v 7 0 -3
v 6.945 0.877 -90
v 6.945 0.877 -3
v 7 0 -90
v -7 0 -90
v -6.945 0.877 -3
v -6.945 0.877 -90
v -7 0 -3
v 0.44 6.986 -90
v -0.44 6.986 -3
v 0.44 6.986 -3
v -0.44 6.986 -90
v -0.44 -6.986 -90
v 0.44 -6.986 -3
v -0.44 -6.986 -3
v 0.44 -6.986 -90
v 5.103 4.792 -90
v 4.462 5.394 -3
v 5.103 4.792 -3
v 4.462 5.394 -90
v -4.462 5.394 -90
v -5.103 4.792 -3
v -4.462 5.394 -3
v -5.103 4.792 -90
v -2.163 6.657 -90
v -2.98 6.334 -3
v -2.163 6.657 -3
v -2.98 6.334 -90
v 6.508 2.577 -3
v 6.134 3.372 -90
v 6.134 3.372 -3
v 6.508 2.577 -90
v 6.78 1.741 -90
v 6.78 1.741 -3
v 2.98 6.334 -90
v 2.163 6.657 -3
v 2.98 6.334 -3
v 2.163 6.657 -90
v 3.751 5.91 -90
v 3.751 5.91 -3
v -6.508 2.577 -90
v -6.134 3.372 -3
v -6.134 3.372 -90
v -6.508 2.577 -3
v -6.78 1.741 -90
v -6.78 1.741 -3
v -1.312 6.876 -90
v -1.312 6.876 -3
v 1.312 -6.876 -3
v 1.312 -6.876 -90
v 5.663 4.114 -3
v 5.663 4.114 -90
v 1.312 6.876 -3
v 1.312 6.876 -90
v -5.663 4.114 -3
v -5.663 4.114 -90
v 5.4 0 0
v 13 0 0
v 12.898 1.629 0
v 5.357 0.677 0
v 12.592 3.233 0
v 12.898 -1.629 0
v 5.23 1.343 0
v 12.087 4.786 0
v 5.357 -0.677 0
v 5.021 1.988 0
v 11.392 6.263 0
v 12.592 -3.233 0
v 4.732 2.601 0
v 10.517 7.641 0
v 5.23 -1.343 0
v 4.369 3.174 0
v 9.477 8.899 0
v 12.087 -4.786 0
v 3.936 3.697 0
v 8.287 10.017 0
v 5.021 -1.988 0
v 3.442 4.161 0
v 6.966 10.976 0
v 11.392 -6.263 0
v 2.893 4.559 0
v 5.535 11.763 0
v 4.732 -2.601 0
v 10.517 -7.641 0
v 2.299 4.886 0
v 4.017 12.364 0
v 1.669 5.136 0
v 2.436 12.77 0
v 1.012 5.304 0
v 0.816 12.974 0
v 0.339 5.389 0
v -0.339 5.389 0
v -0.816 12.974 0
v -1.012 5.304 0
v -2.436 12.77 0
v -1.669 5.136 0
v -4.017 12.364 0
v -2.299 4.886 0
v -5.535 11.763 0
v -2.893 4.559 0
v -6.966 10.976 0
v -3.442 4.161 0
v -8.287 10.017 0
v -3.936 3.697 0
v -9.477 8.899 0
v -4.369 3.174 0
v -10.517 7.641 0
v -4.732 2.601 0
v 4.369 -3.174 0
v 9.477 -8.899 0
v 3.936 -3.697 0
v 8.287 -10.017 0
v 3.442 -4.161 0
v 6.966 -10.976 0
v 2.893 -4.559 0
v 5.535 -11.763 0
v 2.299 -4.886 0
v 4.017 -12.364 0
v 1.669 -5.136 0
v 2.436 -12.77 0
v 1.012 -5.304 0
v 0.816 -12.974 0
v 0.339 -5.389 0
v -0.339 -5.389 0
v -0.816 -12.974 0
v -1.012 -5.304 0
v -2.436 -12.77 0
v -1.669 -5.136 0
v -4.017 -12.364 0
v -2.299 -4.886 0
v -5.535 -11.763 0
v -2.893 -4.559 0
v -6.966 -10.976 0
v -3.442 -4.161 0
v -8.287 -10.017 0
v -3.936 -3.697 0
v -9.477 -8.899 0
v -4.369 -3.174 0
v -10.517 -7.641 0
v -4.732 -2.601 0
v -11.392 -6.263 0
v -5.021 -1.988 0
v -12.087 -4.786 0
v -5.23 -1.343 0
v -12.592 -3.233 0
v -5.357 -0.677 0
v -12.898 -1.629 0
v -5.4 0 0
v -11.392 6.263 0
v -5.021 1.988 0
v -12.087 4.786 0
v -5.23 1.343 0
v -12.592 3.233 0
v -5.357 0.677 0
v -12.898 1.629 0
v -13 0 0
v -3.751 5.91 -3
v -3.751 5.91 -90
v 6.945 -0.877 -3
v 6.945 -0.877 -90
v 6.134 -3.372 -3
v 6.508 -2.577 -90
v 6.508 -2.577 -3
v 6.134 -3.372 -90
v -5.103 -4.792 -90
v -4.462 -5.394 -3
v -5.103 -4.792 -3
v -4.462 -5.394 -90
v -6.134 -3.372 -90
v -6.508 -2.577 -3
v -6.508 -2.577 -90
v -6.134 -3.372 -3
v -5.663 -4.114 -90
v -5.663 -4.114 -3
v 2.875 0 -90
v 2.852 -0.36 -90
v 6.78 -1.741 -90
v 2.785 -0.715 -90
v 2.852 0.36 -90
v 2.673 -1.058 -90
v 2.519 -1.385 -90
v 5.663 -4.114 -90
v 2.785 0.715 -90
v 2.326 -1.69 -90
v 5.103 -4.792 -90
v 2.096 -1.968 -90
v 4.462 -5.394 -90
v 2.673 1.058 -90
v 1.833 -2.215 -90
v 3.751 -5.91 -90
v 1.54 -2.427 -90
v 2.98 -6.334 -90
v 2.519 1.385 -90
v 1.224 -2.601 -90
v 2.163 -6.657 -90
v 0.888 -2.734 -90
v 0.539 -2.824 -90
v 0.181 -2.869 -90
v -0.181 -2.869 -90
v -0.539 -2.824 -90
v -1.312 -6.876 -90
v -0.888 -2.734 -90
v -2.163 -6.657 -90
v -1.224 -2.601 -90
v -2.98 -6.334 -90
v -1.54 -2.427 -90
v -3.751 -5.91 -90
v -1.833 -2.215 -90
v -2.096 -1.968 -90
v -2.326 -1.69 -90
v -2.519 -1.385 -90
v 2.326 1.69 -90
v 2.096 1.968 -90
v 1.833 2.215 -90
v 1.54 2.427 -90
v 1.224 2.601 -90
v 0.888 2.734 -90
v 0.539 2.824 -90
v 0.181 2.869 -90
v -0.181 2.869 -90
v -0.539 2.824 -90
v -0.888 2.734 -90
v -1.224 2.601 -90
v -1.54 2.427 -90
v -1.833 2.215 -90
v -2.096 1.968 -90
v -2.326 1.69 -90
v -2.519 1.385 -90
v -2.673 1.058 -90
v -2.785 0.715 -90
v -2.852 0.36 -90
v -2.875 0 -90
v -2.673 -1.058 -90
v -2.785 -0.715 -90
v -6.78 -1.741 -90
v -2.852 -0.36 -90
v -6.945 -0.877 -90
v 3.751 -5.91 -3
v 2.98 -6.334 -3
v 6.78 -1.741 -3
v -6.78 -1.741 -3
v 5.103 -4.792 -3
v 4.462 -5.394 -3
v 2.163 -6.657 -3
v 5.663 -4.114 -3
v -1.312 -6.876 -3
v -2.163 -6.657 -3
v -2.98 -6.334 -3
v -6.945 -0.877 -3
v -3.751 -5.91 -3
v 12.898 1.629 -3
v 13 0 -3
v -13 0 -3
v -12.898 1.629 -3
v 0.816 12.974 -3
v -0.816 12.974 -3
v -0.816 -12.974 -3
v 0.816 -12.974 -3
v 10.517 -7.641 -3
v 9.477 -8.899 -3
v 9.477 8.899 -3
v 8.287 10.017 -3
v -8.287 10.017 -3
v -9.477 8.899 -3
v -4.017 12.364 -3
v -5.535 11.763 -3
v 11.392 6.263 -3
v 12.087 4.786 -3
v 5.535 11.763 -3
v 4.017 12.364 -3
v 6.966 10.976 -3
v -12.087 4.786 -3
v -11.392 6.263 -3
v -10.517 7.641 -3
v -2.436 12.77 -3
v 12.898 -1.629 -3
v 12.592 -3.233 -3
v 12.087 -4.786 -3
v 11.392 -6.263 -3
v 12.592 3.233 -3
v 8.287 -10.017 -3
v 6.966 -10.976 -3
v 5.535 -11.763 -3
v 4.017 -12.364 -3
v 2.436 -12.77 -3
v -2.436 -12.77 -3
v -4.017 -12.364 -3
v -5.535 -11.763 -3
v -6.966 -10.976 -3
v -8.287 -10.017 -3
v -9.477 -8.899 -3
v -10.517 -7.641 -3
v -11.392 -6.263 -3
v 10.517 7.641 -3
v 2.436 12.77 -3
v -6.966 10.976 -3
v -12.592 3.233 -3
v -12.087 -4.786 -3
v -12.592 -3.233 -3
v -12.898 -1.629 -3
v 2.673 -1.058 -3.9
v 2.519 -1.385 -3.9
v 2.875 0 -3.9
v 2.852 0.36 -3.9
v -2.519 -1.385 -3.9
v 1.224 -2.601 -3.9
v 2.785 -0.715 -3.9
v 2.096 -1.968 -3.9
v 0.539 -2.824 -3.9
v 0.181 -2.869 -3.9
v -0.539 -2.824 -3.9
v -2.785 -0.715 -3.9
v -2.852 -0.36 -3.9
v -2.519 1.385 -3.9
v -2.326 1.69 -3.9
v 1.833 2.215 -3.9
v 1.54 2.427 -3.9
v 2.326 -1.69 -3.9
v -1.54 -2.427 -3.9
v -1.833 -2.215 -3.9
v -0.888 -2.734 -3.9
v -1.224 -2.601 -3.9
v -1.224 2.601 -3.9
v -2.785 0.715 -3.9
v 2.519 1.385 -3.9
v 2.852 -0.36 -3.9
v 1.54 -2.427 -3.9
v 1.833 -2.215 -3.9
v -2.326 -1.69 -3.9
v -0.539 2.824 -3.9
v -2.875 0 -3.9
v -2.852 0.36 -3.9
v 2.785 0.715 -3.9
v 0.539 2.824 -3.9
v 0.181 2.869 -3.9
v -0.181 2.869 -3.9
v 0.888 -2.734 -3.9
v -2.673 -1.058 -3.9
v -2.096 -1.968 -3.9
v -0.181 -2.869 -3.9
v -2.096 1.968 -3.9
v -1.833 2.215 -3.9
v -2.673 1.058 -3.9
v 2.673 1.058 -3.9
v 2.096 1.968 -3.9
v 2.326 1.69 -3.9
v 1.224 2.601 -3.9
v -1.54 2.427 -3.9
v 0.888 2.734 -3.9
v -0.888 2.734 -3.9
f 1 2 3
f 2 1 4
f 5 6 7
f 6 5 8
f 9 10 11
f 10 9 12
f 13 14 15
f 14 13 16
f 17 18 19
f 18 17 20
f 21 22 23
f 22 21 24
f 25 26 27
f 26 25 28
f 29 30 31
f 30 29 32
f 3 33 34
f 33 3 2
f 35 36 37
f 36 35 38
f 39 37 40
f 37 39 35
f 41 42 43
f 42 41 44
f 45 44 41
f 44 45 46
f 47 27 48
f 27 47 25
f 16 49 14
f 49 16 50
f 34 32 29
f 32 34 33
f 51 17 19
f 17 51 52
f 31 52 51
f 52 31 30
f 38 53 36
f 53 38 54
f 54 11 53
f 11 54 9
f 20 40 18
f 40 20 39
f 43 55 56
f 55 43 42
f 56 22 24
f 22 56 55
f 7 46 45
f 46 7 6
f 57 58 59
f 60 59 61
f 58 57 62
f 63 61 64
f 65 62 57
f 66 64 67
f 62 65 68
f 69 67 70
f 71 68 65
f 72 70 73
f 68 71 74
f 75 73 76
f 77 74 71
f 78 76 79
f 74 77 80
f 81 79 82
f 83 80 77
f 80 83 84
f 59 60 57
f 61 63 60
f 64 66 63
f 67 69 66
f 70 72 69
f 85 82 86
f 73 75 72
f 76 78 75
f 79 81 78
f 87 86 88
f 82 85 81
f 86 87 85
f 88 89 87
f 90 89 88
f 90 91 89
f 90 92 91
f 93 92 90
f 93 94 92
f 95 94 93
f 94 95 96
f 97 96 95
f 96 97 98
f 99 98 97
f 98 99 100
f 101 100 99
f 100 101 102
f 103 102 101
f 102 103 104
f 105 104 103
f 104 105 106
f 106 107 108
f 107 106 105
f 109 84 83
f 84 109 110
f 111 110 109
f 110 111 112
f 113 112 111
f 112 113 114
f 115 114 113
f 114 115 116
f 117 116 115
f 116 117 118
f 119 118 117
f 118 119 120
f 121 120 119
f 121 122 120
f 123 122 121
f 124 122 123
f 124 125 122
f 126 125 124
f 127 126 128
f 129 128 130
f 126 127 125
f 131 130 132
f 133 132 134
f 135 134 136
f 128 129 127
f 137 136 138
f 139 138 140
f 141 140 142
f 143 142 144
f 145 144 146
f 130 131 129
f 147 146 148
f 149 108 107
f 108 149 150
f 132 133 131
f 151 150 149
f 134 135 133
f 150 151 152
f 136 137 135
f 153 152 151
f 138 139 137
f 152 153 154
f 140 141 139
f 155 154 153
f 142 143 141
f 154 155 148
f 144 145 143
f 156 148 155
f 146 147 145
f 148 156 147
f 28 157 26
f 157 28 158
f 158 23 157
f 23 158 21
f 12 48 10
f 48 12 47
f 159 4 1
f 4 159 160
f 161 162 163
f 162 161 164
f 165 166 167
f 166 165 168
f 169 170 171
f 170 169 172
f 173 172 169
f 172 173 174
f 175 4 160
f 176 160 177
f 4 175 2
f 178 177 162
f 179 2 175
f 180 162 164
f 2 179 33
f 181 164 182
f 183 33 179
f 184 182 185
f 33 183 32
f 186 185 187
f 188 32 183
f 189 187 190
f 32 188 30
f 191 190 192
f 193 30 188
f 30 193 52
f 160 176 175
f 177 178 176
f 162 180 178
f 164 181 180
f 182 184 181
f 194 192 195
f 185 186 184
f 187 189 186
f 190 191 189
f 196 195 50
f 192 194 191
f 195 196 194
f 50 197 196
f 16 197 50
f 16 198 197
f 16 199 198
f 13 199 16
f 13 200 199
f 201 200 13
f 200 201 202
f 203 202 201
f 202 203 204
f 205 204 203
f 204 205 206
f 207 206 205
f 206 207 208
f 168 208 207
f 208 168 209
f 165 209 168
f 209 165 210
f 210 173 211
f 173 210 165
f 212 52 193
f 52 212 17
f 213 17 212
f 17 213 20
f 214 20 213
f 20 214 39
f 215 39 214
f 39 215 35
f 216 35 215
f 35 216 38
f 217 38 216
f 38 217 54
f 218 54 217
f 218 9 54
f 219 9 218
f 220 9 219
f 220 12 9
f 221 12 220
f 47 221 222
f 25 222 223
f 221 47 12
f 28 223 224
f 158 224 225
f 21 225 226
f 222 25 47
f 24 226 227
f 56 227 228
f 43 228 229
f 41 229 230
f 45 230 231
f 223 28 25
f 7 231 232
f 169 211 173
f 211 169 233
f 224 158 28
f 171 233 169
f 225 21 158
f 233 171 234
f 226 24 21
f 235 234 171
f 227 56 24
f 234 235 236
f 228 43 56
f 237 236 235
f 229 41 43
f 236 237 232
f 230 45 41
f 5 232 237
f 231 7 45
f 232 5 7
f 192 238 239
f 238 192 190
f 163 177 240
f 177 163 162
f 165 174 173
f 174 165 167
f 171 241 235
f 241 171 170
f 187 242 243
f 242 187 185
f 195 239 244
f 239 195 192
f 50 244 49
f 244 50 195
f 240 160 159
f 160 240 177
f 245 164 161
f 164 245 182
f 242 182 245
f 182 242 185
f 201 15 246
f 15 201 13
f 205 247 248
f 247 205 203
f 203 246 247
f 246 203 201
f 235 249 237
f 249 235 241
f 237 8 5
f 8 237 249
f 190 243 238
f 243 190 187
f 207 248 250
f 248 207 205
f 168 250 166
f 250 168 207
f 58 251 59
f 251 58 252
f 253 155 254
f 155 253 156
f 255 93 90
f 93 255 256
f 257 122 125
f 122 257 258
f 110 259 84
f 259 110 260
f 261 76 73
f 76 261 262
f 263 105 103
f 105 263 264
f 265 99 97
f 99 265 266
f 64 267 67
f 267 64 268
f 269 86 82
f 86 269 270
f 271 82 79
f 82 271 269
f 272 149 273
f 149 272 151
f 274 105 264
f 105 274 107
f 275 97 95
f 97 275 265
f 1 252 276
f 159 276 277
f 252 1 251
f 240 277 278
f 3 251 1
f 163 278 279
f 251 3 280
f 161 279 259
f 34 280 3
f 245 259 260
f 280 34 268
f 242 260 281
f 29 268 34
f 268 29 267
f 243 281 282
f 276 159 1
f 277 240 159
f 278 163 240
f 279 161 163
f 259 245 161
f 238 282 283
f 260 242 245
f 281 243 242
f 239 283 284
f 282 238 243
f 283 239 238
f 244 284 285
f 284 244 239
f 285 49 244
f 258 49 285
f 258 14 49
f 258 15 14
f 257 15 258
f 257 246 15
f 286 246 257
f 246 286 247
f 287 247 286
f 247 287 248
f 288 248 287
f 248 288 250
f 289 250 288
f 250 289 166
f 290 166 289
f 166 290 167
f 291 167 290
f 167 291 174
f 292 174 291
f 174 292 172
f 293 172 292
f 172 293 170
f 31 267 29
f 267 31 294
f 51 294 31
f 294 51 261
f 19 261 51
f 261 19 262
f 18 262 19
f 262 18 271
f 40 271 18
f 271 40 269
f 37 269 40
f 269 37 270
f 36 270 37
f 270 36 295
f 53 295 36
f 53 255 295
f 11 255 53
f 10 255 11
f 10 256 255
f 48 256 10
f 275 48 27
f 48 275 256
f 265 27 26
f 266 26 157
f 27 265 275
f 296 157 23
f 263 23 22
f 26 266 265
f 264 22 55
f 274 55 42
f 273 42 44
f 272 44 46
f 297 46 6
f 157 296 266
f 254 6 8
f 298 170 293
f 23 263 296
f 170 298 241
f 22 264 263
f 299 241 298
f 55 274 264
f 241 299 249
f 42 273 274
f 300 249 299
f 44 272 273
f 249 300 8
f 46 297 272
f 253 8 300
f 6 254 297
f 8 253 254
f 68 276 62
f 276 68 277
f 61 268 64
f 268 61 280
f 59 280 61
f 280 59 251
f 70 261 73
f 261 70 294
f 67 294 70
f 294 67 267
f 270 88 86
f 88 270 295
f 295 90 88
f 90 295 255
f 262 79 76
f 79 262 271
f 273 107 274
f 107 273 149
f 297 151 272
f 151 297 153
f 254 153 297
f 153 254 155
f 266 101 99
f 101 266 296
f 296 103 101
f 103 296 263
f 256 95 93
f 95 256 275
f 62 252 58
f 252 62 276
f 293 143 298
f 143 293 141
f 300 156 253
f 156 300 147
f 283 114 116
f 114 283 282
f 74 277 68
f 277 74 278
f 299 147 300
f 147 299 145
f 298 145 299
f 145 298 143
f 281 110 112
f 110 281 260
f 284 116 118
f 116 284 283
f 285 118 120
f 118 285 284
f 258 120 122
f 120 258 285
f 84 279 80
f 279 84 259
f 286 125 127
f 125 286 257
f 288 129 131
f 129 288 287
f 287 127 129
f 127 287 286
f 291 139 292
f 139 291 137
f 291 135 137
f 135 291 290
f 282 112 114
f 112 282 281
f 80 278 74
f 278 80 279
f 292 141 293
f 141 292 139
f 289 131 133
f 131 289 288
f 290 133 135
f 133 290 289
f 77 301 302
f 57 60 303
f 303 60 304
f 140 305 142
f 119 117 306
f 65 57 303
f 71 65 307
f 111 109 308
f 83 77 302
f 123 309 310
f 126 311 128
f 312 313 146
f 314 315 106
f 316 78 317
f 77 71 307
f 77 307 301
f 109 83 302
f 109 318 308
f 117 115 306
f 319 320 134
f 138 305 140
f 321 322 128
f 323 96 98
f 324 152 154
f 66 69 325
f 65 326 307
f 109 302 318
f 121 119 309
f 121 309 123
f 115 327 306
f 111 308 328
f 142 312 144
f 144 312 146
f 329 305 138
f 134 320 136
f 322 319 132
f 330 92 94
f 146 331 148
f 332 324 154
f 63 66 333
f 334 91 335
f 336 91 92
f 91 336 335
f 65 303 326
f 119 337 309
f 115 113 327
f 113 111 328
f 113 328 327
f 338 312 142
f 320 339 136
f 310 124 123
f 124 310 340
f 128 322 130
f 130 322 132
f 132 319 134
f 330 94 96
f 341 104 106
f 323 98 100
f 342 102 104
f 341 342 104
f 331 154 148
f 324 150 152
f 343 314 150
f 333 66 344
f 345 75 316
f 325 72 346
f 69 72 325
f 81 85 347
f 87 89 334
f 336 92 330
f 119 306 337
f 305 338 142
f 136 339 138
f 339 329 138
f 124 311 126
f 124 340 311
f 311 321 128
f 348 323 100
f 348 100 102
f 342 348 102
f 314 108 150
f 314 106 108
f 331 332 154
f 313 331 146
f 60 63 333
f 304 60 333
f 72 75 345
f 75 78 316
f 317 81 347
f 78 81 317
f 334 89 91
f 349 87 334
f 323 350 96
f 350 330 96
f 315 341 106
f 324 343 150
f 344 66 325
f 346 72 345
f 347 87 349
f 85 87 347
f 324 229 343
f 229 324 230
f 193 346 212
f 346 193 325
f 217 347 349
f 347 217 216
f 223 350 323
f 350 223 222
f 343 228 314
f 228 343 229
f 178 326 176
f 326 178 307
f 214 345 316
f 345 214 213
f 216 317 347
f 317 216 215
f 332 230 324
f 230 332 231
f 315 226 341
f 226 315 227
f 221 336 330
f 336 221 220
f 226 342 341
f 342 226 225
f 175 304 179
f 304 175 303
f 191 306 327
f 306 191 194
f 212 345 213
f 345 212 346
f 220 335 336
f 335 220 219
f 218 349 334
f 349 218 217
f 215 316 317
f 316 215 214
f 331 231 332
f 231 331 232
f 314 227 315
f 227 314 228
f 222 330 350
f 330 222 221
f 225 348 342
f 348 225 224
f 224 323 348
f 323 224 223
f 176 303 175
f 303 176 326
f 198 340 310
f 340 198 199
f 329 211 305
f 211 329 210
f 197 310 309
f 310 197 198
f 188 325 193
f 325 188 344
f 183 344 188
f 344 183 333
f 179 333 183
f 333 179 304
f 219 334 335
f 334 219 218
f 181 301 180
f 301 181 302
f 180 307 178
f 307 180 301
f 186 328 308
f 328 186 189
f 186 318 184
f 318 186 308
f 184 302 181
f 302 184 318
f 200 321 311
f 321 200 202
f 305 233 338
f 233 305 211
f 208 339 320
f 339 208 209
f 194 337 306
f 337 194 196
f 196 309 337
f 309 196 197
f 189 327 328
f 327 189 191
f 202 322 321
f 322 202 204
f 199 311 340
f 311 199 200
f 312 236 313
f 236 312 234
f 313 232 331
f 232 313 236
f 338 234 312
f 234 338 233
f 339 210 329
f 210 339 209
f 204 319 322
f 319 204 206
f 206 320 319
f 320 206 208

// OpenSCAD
$fn = 50;


difference() {
	union() {
		translate(v = [0, 0, -90.0000000000]) {
			cylinder(h = 90, r = 7.0000000000);
		}
		translate(v = [0, 0, -3.0000000000]) {
			cylinder(h = 3, r = 13.0000000000);
		}
	}
	union() {
		translate(v = [0, 0, 0]) {
			rotate(a = [0, 0, 0]) {
				difference() {
					union() {
						#translate(v = [0, 0, -90.0000000000]) {
							cylinder(h = 90, r = 2.6000000000);
						}
						#translate(v = [0, 0, -3.9000000000]) {
							cylinder(h = 3.9000000000, r = 7.0000000000, r1 = 2.8750000000, r2 = 5.4000000000);
						}
						#translate(v = [0, 0, -90.0000000000]) {
							cylinder(h = 90, r = 2.8750000000);
						}
						#translate(v = [0, 0, -90.0000000000]) {
							cylinder(h = 90, r = 2.6000000000);
						}
					}
					union();
				}
			}
		}
	}
}
